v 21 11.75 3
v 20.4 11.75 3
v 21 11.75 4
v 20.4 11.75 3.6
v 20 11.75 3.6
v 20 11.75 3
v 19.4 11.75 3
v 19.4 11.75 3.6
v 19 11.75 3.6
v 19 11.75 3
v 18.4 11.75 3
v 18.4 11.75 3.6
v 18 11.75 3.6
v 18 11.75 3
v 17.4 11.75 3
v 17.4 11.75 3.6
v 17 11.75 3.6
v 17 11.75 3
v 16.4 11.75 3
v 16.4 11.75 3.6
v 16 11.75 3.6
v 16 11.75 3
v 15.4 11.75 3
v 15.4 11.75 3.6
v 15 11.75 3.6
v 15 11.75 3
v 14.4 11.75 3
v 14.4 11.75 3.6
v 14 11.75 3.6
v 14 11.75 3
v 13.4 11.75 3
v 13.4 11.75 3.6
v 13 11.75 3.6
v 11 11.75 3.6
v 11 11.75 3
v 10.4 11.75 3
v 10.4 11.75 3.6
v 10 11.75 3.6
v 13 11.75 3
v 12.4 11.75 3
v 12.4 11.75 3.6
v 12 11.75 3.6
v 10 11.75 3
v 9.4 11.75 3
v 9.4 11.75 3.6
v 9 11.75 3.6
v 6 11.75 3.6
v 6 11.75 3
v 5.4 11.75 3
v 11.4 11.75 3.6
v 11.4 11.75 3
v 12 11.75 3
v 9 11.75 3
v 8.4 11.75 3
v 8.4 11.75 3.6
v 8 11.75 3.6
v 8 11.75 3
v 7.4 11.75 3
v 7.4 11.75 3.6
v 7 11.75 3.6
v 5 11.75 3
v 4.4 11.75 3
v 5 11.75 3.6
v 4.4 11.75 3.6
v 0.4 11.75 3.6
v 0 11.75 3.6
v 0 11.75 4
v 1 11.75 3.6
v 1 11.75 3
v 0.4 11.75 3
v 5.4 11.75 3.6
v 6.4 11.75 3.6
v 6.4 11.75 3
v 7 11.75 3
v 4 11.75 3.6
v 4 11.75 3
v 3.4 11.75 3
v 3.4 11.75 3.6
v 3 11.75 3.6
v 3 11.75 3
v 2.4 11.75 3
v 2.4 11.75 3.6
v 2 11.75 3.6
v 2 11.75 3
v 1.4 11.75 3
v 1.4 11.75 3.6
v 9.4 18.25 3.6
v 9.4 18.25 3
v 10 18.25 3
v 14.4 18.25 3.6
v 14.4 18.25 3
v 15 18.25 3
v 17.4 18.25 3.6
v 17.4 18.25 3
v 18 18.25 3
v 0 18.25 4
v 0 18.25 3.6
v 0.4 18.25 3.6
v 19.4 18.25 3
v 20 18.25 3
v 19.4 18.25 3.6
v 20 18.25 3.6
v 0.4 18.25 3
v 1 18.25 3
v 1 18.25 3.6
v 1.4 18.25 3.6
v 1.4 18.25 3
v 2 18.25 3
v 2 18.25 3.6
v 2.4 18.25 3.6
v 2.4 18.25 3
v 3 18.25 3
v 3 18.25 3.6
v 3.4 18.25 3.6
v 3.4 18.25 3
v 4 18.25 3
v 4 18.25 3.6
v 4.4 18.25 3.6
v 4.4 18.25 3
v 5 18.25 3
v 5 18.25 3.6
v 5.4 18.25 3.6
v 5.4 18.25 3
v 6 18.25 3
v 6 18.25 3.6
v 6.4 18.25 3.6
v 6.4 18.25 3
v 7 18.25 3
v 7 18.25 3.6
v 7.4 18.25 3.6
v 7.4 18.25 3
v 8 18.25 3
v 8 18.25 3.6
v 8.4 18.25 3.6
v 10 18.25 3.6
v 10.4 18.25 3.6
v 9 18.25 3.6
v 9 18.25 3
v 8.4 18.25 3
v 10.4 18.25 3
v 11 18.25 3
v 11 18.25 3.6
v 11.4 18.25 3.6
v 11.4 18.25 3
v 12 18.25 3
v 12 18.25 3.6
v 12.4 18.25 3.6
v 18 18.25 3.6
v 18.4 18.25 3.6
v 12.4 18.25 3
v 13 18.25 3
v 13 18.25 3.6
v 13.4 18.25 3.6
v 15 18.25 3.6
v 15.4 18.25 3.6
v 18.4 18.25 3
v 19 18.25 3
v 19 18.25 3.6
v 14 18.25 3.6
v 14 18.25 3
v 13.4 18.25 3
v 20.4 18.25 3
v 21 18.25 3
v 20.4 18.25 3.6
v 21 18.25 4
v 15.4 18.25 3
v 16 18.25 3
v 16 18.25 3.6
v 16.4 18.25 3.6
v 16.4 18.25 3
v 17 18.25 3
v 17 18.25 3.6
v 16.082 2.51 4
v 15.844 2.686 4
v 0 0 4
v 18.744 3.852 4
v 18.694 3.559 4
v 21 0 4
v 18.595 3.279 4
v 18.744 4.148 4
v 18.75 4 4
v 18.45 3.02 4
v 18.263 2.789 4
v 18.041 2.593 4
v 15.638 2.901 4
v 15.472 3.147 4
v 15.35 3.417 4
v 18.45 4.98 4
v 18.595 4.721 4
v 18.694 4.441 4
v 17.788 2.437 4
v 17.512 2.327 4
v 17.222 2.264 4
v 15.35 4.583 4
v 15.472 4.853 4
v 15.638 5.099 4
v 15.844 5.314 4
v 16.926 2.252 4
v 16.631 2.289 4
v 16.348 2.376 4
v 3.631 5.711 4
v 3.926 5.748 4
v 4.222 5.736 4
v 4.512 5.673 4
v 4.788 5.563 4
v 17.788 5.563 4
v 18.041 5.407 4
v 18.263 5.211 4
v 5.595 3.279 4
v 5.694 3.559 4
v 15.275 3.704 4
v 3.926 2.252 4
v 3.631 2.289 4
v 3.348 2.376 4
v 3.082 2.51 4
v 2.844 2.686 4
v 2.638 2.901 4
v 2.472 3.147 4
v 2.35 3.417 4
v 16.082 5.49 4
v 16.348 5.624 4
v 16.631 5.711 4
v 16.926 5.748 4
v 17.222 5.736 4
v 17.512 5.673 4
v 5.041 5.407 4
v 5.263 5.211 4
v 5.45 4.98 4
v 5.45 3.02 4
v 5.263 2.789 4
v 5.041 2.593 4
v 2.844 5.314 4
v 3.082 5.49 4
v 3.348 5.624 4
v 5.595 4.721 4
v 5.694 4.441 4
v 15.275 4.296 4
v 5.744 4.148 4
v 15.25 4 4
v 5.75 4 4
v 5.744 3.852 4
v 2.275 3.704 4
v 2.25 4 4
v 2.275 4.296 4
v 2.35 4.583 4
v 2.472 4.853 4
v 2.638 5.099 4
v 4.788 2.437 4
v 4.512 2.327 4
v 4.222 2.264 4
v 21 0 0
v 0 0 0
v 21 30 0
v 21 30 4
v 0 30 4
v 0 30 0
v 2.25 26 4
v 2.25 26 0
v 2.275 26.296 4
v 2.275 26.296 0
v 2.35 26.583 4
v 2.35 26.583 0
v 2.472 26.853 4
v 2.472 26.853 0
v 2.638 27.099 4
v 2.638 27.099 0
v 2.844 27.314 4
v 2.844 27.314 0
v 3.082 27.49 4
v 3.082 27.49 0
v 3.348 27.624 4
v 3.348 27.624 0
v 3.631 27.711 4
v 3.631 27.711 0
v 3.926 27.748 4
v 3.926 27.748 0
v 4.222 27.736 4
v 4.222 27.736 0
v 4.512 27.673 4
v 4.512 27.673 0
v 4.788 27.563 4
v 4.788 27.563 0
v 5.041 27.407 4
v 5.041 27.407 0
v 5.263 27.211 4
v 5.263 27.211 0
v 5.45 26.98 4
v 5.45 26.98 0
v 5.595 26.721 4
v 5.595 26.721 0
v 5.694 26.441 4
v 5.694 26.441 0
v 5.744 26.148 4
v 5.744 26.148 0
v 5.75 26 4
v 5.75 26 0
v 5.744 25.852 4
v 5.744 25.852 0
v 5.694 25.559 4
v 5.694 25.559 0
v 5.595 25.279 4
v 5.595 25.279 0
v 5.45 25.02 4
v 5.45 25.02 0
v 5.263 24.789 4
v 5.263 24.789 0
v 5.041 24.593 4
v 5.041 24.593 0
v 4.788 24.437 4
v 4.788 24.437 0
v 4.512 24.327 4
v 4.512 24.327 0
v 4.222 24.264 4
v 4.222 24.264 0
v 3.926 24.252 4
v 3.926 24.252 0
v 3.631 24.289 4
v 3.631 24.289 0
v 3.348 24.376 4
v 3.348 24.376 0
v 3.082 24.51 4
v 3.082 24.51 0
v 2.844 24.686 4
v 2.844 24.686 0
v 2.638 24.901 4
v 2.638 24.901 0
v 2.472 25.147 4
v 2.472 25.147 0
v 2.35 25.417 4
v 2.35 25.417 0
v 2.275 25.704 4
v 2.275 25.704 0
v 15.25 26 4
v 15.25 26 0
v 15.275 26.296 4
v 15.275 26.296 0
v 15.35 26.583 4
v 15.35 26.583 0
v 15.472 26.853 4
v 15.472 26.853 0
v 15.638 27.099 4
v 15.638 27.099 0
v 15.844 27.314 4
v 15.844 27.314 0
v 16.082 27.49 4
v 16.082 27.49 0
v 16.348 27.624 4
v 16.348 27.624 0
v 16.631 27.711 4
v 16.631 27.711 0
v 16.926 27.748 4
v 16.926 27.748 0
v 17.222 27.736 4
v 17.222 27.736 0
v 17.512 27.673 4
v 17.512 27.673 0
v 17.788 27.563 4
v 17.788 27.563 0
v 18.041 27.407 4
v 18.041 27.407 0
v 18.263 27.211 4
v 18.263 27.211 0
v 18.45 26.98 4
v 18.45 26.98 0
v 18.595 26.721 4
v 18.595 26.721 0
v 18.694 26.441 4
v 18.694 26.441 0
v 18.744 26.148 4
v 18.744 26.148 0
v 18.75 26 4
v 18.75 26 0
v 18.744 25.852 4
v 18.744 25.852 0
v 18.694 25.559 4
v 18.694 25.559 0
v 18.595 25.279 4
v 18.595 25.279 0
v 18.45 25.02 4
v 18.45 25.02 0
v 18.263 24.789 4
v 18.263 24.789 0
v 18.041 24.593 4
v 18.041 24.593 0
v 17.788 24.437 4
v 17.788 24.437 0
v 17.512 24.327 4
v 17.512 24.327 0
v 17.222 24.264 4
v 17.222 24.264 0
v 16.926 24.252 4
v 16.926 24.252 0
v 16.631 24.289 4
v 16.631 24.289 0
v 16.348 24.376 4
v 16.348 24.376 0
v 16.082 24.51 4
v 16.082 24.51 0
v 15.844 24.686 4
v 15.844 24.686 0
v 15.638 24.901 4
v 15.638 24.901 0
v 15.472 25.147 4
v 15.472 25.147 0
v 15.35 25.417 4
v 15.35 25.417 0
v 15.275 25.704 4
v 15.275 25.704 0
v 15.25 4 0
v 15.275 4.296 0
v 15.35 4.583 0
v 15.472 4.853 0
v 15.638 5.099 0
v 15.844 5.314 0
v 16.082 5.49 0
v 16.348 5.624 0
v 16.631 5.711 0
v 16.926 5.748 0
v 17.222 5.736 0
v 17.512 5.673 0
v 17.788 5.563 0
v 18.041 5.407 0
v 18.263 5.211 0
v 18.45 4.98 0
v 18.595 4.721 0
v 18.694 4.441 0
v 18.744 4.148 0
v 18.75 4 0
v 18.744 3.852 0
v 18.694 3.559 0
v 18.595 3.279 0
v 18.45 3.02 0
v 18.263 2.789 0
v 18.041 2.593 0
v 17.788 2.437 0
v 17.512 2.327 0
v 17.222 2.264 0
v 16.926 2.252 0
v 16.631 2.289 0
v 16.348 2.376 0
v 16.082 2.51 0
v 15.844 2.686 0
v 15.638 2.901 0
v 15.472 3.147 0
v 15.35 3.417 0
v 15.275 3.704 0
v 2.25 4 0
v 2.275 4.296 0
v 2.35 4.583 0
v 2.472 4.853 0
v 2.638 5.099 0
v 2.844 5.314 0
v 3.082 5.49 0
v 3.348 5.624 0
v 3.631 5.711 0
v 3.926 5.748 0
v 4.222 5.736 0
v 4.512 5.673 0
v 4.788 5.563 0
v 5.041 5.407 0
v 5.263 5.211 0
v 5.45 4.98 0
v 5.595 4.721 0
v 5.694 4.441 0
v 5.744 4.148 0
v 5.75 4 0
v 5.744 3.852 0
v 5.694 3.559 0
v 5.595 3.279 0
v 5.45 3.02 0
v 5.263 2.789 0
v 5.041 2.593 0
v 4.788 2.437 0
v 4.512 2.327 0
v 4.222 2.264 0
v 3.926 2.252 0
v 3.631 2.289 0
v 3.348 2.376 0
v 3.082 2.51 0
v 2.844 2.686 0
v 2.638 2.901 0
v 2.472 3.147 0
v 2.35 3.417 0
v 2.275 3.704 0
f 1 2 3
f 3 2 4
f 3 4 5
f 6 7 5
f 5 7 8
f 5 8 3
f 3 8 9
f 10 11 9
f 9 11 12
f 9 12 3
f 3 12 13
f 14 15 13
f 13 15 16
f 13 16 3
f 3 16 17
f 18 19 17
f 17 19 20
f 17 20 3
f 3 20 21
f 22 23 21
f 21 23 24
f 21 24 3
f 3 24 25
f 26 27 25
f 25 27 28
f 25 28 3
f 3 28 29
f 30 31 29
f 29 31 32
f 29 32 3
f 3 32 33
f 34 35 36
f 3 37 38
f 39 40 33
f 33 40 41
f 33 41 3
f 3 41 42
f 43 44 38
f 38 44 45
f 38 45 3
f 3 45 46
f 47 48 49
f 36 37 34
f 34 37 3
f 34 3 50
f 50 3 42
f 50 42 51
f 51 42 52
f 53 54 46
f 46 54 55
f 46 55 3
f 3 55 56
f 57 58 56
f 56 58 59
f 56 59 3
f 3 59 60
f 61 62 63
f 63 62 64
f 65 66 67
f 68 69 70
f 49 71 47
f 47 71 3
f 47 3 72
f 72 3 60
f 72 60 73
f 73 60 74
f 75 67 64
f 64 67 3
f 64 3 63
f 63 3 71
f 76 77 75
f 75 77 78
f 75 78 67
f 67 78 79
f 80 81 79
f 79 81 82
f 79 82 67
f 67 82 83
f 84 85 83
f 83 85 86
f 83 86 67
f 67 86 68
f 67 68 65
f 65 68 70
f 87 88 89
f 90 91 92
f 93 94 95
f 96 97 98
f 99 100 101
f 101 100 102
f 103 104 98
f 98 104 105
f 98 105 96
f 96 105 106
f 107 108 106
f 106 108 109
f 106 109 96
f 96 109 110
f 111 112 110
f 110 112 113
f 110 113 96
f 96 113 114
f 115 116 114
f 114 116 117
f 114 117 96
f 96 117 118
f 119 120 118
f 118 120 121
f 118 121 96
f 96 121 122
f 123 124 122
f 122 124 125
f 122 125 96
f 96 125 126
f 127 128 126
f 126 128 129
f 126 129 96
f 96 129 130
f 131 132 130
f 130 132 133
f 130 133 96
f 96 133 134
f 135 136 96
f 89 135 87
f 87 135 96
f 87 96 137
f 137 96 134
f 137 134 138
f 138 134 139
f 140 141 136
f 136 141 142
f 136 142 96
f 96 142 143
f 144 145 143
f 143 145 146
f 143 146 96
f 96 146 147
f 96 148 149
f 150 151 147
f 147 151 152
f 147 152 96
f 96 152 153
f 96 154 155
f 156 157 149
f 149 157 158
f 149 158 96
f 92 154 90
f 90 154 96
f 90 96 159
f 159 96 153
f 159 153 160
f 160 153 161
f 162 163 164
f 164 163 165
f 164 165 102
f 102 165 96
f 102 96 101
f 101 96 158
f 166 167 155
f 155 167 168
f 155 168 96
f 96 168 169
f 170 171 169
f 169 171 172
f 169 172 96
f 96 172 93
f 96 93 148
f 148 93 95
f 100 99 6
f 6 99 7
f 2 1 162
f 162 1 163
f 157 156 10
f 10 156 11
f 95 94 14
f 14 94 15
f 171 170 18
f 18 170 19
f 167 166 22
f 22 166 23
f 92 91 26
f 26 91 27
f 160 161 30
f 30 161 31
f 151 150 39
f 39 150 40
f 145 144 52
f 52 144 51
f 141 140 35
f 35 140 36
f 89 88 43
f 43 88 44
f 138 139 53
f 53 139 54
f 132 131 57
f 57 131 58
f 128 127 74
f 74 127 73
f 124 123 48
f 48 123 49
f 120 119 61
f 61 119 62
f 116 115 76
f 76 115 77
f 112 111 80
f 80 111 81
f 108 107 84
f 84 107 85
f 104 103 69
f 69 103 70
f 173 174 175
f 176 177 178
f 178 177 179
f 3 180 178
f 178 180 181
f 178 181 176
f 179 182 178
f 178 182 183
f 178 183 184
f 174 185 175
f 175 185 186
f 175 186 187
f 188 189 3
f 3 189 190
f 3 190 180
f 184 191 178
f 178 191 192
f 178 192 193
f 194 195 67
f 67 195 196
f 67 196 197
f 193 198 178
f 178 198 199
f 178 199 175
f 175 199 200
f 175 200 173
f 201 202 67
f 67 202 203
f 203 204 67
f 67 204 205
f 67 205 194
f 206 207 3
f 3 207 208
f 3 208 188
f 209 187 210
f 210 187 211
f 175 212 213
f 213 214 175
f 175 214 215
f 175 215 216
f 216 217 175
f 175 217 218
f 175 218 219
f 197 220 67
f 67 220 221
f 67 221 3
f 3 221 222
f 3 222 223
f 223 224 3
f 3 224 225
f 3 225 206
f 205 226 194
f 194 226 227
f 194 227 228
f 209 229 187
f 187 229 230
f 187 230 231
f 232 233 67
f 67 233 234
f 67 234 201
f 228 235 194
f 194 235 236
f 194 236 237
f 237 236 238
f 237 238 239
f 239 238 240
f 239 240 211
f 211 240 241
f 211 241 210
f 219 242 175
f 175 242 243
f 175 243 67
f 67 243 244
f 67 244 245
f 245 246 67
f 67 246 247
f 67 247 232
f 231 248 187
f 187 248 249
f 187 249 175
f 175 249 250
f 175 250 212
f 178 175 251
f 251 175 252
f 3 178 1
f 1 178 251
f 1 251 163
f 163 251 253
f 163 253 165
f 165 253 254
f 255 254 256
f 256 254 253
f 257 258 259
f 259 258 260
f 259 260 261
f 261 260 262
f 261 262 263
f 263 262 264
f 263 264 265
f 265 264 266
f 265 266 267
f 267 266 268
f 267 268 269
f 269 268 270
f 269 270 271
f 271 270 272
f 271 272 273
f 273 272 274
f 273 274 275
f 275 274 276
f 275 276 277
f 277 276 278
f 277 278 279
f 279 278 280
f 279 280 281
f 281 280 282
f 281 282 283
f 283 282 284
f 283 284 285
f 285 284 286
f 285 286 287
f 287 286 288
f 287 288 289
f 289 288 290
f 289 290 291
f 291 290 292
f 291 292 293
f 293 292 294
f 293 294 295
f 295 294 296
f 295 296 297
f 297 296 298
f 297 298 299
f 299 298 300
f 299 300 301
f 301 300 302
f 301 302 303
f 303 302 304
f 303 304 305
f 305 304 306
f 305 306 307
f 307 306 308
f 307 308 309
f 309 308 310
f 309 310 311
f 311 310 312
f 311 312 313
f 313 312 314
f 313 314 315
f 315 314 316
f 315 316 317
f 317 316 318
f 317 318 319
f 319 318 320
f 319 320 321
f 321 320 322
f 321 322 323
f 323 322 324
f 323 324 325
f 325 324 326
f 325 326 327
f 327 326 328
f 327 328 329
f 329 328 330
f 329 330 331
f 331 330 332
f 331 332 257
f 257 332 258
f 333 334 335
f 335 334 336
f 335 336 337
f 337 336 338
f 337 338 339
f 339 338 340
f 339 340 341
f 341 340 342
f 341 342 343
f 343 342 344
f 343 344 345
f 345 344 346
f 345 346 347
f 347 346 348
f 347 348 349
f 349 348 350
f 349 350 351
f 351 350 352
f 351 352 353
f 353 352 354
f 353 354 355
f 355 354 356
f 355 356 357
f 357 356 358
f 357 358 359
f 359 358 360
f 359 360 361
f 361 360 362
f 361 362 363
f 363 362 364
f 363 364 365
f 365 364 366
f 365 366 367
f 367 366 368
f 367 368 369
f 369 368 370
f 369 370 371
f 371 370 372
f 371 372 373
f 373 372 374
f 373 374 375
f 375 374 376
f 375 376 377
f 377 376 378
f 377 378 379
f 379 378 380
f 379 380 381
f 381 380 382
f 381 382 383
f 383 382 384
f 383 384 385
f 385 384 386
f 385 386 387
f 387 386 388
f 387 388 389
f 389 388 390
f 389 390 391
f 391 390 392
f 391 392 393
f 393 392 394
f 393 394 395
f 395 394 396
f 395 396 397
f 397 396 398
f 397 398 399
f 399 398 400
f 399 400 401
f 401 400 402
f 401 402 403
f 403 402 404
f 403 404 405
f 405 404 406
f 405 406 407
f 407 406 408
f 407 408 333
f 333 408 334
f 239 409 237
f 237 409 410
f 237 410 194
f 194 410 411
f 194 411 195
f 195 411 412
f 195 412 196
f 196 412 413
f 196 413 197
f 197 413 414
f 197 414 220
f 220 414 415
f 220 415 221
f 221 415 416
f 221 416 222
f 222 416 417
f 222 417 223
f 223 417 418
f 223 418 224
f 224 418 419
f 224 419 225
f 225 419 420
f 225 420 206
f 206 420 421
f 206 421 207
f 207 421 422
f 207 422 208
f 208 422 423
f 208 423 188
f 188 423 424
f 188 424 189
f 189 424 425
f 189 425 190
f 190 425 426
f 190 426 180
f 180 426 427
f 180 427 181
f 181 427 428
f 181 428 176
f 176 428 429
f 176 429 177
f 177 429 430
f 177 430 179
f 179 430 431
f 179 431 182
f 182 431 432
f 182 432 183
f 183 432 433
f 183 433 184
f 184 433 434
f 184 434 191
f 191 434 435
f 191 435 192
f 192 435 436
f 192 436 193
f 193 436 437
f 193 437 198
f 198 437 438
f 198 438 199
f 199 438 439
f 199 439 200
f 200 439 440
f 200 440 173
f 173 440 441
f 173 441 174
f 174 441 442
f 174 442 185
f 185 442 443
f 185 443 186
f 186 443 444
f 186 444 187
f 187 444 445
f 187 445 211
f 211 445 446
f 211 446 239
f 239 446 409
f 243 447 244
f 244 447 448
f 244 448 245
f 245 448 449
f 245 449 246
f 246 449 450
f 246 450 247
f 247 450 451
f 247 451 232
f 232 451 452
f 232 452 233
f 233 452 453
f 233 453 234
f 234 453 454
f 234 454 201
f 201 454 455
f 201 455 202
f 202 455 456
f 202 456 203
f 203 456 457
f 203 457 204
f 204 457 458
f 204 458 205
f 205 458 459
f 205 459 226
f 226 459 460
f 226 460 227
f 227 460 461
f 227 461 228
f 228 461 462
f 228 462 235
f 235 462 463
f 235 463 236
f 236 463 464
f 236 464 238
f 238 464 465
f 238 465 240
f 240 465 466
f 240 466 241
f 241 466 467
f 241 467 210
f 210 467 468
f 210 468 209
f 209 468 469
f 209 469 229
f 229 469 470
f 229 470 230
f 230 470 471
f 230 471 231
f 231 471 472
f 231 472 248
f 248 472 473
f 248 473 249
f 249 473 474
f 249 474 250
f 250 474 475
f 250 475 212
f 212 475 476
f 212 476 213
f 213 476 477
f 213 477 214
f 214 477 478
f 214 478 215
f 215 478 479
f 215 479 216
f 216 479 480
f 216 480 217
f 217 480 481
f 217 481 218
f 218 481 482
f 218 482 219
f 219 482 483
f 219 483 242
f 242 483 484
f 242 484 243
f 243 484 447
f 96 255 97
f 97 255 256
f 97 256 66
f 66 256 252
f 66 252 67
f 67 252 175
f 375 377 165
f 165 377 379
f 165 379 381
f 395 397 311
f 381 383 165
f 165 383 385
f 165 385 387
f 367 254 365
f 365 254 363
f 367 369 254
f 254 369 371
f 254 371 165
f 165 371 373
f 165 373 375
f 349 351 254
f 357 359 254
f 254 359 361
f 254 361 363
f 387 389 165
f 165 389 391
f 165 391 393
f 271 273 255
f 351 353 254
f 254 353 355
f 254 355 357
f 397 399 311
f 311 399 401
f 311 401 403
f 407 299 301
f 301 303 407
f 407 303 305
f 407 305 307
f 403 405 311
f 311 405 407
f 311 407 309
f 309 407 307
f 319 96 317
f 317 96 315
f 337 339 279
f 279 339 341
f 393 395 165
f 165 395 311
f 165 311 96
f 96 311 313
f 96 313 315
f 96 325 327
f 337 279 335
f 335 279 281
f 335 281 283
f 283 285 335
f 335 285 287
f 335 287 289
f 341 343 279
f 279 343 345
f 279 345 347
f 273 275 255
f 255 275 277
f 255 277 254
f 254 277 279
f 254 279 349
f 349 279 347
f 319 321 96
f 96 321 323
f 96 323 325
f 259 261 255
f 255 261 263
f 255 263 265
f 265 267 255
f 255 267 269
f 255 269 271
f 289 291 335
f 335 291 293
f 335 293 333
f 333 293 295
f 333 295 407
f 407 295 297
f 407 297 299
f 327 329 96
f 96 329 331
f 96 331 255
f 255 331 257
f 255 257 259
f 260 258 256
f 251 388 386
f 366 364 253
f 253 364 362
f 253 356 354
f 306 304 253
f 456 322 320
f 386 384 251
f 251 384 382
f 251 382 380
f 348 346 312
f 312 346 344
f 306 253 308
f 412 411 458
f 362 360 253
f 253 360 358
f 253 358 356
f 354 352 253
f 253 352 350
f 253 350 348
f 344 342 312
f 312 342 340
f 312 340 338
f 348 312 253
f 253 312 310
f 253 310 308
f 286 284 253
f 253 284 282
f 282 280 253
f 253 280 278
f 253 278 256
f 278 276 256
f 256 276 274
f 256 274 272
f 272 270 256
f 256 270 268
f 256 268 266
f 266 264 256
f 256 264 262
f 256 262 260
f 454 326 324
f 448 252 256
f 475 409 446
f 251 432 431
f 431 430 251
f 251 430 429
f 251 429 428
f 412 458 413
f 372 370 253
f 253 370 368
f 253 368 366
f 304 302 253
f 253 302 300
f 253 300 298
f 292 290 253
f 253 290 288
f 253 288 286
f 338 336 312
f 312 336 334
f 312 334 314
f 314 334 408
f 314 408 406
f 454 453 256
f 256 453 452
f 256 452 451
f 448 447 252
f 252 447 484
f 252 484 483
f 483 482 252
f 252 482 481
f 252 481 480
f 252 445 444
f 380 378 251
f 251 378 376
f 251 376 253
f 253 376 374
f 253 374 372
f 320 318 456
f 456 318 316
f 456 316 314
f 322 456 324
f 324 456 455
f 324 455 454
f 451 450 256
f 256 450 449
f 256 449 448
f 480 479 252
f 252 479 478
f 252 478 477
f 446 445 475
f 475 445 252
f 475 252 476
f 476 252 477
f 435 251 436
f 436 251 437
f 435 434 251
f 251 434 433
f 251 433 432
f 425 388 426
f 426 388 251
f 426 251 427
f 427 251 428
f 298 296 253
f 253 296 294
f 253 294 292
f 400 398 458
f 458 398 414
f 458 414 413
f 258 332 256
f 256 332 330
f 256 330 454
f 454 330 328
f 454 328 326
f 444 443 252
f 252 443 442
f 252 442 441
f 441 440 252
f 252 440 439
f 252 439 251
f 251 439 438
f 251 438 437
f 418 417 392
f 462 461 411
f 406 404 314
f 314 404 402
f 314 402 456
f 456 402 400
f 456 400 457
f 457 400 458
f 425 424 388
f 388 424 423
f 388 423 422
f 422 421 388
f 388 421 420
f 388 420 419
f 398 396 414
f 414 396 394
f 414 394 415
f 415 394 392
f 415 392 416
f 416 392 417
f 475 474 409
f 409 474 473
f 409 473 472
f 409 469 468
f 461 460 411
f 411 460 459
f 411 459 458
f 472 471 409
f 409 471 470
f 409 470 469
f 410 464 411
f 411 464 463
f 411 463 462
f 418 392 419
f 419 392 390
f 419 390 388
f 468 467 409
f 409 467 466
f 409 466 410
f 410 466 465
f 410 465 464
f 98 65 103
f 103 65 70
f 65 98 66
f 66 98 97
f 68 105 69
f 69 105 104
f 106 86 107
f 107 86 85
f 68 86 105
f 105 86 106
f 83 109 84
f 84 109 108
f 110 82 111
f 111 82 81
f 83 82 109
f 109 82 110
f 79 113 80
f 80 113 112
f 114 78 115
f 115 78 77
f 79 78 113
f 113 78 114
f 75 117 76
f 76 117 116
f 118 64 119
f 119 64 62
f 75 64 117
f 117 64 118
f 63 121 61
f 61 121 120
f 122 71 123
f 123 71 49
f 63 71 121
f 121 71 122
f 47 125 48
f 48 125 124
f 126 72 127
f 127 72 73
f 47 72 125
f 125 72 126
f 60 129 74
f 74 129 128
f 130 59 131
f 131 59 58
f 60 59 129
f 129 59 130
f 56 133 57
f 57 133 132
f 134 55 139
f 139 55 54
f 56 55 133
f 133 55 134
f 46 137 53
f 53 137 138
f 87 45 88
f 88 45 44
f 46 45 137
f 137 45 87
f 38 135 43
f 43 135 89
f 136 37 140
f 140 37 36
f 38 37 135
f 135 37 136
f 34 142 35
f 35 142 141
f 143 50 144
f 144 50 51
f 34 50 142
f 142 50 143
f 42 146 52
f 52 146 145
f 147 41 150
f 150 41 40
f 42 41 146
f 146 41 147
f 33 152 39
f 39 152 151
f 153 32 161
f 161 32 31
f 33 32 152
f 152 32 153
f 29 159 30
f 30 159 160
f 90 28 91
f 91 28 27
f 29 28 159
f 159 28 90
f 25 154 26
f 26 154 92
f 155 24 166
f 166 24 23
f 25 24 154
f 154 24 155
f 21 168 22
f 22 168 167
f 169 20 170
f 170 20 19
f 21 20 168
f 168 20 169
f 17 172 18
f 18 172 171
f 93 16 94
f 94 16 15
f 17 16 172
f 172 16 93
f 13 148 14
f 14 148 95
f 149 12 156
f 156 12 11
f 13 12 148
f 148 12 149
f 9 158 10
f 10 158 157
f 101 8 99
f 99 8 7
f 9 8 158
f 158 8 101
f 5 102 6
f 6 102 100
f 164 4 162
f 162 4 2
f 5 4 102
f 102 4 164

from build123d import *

# Parameters (mm, degrees)
SKETCH1_W           = 21
SKETCH1_H           = 30
SKETCH1_R           = 1.75
BOSS_EXTRUDE1_DEPTH = 4
SKETCH2_W           = 21
SKETCH2_H           = 6.5
CUT_EXTRUDE1_DEPTH  = 1
SKETCH3_W           = 0.4
SKETCH3_H           = 6.5
BOSS_EXTRUDE2_DEPTH = 0.6


with BuildPart() as part:
    # Sketch1 → Boss-Extrude1 (new body)
    with BuildSketch(Plane.XY):
        with Locations((10.5, 15)):
            Rectangle(SKETCH1_W, SKETCH1_H)
        with Locations((4, 4)):
            Circle(SKETCH1_R, mode=Mode.SUBTRACT)
        with Locations((17, 4)):
            Circle(SKETCH1_R, mode=Mode.SUBTRACT)
        with Locations((17, 26)):
            Circle(SKETCH1_R, mode=Mode.SUBTRACT)
        with Locations((4, 26)):
            Circle(SKETCH1_R, mode=Mode.SUBTRACT)
    extrude(amount=BOSS_EXTRUDE1_DEPTH)

    # Sketch2 → Cut-Extrude1 (cut)
    with BuildSketch(Plane.XY.offset(4)):
        with Locations((10.5, 15)):
            Rectangle(SKETCH2_W, SKETCH2_H)
    extrude(amount=-CUT_EXTRUDE1_DEPTH, mode=Mode.SUBTRACT)

    # Sketch3 → Boss-Extrude2 (add)
    with BuildSketch(Plane.XY.offset(3)):
        with Locations((0.2, 15)):
            Rectangle(SKETCH3_W, SKETCH3_H)
        with Locations((1.2, 15)):
            Rectangle(SKETCH3_W, SKETCH3_H)
        with Locations((2.2, 15)):
            Rectangle(SKETCH3_W, SKETCH3_H)
        with Locations((3.2, 15)):
            Rectangle(SKETCH3_W, SKETCH3_H)
        with Locations((4.2, 15)):
            Rectangle(SKETCH3_W, SKETCH3_H)
        with Locations((5.2, 15)):
            Rectangle(SKETCH3_W, SKETCH3_H)
        with Locations((6.2, 15)):
            Rectangle(SKETCH3_W, SKETCH3_H)
        with Locations((7.2, 15)):
            Rectangle(SKETCH3_W, SKETCH3_H)
        with Locations((8.2, 15)):
            Rectangle(SKETCH3_W, SKETCH3_H)
        with Locations((9.2, 15)):
            Rectangle(SKETCH3_W, SKETCH3_H)
        with Locations((10.2, 15)):
            Rectangle(SKETCH3_W, SKETCH3_H)
        with Locations((11.2, 15)):
            Rectangle(SKETCH3_W, SKETCH3_H)
        with Locations((12.2, 15)):
            Rectangle(SKETCH3_W, SKETCH3_H)
        with Locations((13.2, 15)):
            Rectangle(SKETCH3_W, SKETCH3_H)
        with Locations((14.2, 15)):
            Rectangle(SKETCH3_W, SKETCH3_H)
        with Locations((15.2, 15)):
            Rectangle(SKETCH3_W, SKETCH3_H)
        with Locations((16.2, 15)):
            Rectangle(SKETCH3_W, SKETCH3_H)
        with Locations((17.2, 15)):
            Rectangle(SKETCH3_W, SKETCH3_H)
        with Locations((18.2, 15)):
            Rectangle(SKETCH3_W, SKETCH3_H)
        with Locations((19.2, 15)):
            Rectangle(SKETCH3_W, SKETCH3_H)
        with Locations((20.2, 15)):
            Rectangle(SKETCH3_W, SKETCH3_H)
    extrude(amount=BOSS_EXTRUDE2_DEPTH)


solid = part.part
